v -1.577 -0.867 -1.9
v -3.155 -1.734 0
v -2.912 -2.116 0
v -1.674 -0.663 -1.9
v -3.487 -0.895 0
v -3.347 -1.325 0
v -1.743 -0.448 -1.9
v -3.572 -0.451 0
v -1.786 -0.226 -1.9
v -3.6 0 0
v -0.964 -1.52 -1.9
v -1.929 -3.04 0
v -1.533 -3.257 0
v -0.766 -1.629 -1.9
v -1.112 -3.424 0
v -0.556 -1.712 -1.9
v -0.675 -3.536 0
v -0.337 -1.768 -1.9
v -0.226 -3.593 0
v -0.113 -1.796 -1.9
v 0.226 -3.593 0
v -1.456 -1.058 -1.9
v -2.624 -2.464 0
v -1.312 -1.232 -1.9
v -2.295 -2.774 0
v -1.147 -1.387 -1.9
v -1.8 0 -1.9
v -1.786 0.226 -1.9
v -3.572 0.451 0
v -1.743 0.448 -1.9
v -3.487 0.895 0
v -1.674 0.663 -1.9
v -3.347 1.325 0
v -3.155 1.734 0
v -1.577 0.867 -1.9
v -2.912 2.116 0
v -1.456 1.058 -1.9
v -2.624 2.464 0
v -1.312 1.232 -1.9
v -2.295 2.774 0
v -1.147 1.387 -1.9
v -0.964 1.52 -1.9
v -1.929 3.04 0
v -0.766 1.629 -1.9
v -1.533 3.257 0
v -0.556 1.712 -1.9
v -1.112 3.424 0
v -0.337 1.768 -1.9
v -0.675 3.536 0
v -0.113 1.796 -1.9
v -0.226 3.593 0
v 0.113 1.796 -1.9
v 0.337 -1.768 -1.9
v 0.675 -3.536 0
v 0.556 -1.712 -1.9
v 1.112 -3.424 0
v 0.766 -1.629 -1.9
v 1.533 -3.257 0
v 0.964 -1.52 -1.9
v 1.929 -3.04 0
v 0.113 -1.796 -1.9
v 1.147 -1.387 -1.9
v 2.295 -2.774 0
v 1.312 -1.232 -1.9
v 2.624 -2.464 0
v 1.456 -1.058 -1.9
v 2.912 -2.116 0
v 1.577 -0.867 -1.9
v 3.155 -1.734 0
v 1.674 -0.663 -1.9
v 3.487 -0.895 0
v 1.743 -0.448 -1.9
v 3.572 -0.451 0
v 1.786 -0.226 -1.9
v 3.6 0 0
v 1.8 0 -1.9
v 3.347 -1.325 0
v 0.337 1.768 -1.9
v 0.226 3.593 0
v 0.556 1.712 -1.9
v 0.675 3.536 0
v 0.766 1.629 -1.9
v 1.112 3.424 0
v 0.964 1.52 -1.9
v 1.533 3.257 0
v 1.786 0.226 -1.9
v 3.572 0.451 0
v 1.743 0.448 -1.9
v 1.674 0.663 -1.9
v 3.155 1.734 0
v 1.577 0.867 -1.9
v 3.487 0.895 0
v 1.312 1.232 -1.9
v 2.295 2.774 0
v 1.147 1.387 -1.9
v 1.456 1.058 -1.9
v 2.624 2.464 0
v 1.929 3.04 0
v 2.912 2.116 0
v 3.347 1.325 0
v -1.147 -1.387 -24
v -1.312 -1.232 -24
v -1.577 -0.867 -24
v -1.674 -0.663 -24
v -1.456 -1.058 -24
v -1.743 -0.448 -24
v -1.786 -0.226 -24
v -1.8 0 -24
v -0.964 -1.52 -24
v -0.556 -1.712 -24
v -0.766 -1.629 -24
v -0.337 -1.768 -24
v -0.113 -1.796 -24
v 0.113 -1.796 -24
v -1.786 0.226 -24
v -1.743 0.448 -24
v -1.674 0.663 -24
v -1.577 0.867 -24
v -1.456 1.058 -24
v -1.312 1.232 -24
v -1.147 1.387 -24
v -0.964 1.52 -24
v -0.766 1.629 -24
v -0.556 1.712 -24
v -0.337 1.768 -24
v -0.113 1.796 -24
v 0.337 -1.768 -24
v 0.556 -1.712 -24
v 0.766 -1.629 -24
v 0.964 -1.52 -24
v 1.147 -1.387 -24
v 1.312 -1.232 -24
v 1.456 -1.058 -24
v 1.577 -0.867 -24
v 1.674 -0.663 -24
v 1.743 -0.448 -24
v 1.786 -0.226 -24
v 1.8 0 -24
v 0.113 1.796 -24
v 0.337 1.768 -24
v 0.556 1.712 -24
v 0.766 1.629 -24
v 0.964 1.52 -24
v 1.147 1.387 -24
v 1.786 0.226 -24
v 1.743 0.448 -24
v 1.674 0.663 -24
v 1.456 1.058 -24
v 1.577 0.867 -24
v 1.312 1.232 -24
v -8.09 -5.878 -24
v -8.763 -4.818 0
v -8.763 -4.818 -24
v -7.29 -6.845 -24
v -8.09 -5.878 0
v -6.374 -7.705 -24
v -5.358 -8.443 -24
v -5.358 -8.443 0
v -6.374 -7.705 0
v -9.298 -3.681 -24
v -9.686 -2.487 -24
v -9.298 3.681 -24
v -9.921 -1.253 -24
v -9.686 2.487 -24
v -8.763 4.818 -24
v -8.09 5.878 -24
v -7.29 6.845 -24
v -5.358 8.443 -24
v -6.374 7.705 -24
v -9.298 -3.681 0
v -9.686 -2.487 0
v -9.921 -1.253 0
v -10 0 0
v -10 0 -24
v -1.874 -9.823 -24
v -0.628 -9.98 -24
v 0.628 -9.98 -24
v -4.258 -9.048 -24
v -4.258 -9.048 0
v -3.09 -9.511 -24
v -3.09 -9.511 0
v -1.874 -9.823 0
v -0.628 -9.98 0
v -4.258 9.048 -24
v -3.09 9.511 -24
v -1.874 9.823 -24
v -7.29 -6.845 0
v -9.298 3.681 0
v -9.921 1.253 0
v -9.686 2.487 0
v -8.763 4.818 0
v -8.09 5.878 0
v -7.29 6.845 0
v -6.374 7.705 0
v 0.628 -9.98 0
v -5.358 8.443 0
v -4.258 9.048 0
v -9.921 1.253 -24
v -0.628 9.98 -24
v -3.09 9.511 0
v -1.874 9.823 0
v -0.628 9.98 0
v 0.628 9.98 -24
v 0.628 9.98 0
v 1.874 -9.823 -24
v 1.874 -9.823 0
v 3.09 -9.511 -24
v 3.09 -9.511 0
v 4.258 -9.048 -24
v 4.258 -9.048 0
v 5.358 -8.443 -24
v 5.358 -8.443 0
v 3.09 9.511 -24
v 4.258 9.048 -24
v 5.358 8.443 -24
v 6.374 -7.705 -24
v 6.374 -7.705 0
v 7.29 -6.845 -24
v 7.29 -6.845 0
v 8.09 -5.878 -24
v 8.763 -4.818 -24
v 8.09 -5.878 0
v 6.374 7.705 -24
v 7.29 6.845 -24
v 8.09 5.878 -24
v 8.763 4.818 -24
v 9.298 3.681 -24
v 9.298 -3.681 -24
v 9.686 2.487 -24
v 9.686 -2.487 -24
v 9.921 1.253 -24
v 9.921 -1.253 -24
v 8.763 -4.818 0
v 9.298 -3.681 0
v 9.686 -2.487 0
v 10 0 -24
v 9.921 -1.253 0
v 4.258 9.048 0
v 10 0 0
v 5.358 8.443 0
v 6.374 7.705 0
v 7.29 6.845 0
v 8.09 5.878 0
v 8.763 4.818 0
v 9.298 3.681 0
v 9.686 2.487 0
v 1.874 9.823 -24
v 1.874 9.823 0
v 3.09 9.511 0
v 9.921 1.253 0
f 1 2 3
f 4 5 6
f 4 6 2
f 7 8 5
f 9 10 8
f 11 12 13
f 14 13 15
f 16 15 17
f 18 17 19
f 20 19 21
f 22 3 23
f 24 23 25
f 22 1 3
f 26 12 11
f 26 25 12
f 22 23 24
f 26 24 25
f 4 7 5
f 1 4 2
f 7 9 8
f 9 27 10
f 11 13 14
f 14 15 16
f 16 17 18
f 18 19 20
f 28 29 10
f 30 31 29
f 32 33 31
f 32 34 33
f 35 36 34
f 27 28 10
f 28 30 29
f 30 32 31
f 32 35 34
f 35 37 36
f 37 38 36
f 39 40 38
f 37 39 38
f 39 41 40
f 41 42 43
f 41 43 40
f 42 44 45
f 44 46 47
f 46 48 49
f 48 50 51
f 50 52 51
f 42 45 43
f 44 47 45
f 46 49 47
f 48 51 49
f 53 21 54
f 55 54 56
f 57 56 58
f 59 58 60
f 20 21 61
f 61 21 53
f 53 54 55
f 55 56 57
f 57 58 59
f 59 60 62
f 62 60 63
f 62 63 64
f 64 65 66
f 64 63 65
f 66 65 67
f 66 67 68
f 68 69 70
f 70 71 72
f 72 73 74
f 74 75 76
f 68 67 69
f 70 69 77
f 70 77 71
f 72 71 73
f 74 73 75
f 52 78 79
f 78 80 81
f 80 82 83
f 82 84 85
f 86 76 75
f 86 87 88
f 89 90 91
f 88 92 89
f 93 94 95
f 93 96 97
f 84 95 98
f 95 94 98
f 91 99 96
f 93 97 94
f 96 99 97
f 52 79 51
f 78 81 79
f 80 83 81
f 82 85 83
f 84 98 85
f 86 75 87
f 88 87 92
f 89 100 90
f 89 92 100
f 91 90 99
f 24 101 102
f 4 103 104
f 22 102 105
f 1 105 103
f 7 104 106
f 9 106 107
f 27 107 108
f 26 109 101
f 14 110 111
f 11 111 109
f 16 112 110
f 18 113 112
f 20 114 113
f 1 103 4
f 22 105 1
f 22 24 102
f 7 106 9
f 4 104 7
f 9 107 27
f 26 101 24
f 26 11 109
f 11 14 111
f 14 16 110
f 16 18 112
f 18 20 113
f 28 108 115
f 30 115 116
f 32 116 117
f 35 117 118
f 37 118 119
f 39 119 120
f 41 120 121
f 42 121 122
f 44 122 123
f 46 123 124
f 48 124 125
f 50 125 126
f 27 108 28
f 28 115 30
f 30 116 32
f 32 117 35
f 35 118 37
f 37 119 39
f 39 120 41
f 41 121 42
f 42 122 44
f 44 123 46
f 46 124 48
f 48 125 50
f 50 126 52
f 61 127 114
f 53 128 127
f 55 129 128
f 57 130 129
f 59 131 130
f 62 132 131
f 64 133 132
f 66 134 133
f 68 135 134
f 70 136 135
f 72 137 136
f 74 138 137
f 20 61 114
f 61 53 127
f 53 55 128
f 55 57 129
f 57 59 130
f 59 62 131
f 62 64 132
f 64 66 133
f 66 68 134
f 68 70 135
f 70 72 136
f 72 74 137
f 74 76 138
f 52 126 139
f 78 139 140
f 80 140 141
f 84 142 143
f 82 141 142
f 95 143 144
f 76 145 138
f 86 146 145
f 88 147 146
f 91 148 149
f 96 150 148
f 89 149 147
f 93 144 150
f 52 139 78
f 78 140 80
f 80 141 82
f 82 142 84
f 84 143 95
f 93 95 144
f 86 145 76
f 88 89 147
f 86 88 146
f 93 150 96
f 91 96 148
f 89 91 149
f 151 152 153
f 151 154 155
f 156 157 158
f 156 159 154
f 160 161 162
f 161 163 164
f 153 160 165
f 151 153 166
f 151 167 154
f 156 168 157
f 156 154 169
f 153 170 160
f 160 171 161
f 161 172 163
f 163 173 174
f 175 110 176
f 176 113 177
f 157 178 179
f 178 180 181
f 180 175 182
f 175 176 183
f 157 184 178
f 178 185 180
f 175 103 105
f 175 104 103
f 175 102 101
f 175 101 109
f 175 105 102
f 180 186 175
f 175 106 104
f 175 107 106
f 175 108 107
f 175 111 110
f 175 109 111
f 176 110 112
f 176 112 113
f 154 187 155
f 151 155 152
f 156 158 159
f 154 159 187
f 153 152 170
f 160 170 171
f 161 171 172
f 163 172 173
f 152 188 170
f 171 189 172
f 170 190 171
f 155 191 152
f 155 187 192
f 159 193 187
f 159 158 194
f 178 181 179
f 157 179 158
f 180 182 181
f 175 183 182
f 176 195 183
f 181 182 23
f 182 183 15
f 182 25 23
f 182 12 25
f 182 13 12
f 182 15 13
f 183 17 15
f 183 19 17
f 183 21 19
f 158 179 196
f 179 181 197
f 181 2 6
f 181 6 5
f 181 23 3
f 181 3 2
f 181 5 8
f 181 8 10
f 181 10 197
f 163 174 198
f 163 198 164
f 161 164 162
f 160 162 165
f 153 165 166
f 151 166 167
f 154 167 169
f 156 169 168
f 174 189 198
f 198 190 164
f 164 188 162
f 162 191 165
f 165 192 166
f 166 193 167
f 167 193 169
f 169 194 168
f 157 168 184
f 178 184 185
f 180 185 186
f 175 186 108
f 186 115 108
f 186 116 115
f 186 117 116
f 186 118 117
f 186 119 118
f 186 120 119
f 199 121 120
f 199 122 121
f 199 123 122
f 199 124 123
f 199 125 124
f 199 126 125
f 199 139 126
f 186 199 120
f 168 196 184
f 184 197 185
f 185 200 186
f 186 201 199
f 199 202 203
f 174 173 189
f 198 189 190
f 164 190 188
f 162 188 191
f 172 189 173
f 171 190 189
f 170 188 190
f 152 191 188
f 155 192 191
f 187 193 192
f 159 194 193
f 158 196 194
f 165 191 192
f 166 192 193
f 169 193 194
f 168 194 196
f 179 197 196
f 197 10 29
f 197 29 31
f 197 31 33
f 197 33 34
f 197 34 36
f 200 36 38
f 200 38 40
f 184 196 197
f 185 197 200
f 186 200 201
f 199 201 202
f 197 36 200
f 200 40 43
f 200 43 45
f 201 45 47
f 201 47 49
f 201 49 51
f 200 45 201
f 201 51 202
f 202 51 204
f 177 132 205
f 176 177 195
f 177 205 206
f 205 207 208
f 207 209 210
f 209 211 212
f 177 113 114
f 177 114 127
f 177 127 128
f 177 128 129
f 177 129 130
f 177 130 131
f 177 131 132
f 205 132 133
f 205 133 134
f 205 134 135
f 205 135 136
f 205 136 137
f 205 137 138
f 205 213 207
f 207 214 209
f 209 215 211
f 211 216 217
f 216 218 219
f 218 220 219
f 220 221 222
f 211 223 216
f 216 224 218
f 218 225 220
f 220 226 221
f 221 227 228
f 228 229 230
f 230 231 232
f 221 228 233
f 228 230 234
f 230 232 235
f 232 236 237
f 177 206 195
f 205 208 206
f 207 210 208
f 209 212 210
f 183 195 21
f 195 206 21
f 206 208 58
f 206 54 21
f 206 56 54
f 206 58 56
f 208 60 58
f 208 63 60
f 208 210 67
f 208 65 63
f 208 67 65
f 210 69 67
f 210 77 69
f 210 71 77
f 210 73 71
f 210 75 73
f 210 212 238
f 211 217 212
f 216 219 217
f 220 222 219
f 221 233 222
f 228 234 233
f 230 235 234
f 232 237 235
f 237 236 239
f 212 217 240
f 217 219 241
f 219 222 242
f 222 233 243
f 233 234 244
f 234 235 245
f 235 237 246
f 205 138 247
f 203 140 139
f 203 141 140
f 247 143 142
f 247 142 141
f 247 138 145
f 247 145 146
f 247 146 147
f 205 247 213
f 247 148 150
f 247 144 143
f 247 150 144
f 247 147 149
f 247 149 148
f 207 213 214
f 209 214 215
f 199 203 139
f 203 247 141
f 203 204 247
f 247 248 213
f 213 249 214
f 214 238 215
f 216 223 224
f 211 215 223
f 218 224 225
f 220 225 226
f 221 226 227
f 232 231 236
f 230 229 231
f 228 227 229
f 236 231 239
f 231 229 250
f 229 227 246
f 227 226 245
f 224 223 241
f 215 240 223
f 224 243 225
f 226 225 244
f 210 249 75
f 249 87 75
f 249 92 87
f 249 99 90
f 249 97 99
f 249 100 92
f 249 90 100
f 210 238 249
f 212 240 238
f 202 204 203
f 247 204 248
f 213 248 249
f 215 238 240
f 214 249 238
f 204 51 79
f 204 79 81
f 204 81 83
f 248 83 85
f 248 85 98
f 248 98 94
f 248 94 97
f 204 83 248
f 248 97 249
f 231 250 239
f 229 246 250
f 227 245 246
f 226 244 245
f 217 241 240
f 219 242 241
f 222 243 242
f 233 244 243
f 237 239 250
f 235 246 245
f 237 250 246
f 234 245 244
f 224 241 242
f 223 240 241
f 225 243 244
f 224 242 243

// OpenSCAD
$fn = 50;


difference() {
	union() {
		translate(v = [0, 0, -24.0000000000]) {
			cylinder(h = 24, r = 10.0000000000);
		}
	}
	union() {
		translate(v = [0, 0, 0]) {
			rotate(a = [0, 0, 0]) {
				difference() {
					union() {
						translate(v = [0, 0, -27.0000000000]) {
							cylinder(h = 27, r = 1.5000000000);
						}
						translate(v = [0, 0, -1.9000000000]) {
							cylinder(h = 1.9000000000, r1 = 1.8000000000, r2 = 3.6000000000);
						}
						translate(v = [0, 0, -27.0000000000]) {
							cylinder(h = 27, r = 1.8000000000);
						}
						translate(v = [0, 0, -27.0000000000]) {
							cylinder(h = 27, r = 1.5000000000);
						}
					}
					union();
				}
			}
		}
	}
}
